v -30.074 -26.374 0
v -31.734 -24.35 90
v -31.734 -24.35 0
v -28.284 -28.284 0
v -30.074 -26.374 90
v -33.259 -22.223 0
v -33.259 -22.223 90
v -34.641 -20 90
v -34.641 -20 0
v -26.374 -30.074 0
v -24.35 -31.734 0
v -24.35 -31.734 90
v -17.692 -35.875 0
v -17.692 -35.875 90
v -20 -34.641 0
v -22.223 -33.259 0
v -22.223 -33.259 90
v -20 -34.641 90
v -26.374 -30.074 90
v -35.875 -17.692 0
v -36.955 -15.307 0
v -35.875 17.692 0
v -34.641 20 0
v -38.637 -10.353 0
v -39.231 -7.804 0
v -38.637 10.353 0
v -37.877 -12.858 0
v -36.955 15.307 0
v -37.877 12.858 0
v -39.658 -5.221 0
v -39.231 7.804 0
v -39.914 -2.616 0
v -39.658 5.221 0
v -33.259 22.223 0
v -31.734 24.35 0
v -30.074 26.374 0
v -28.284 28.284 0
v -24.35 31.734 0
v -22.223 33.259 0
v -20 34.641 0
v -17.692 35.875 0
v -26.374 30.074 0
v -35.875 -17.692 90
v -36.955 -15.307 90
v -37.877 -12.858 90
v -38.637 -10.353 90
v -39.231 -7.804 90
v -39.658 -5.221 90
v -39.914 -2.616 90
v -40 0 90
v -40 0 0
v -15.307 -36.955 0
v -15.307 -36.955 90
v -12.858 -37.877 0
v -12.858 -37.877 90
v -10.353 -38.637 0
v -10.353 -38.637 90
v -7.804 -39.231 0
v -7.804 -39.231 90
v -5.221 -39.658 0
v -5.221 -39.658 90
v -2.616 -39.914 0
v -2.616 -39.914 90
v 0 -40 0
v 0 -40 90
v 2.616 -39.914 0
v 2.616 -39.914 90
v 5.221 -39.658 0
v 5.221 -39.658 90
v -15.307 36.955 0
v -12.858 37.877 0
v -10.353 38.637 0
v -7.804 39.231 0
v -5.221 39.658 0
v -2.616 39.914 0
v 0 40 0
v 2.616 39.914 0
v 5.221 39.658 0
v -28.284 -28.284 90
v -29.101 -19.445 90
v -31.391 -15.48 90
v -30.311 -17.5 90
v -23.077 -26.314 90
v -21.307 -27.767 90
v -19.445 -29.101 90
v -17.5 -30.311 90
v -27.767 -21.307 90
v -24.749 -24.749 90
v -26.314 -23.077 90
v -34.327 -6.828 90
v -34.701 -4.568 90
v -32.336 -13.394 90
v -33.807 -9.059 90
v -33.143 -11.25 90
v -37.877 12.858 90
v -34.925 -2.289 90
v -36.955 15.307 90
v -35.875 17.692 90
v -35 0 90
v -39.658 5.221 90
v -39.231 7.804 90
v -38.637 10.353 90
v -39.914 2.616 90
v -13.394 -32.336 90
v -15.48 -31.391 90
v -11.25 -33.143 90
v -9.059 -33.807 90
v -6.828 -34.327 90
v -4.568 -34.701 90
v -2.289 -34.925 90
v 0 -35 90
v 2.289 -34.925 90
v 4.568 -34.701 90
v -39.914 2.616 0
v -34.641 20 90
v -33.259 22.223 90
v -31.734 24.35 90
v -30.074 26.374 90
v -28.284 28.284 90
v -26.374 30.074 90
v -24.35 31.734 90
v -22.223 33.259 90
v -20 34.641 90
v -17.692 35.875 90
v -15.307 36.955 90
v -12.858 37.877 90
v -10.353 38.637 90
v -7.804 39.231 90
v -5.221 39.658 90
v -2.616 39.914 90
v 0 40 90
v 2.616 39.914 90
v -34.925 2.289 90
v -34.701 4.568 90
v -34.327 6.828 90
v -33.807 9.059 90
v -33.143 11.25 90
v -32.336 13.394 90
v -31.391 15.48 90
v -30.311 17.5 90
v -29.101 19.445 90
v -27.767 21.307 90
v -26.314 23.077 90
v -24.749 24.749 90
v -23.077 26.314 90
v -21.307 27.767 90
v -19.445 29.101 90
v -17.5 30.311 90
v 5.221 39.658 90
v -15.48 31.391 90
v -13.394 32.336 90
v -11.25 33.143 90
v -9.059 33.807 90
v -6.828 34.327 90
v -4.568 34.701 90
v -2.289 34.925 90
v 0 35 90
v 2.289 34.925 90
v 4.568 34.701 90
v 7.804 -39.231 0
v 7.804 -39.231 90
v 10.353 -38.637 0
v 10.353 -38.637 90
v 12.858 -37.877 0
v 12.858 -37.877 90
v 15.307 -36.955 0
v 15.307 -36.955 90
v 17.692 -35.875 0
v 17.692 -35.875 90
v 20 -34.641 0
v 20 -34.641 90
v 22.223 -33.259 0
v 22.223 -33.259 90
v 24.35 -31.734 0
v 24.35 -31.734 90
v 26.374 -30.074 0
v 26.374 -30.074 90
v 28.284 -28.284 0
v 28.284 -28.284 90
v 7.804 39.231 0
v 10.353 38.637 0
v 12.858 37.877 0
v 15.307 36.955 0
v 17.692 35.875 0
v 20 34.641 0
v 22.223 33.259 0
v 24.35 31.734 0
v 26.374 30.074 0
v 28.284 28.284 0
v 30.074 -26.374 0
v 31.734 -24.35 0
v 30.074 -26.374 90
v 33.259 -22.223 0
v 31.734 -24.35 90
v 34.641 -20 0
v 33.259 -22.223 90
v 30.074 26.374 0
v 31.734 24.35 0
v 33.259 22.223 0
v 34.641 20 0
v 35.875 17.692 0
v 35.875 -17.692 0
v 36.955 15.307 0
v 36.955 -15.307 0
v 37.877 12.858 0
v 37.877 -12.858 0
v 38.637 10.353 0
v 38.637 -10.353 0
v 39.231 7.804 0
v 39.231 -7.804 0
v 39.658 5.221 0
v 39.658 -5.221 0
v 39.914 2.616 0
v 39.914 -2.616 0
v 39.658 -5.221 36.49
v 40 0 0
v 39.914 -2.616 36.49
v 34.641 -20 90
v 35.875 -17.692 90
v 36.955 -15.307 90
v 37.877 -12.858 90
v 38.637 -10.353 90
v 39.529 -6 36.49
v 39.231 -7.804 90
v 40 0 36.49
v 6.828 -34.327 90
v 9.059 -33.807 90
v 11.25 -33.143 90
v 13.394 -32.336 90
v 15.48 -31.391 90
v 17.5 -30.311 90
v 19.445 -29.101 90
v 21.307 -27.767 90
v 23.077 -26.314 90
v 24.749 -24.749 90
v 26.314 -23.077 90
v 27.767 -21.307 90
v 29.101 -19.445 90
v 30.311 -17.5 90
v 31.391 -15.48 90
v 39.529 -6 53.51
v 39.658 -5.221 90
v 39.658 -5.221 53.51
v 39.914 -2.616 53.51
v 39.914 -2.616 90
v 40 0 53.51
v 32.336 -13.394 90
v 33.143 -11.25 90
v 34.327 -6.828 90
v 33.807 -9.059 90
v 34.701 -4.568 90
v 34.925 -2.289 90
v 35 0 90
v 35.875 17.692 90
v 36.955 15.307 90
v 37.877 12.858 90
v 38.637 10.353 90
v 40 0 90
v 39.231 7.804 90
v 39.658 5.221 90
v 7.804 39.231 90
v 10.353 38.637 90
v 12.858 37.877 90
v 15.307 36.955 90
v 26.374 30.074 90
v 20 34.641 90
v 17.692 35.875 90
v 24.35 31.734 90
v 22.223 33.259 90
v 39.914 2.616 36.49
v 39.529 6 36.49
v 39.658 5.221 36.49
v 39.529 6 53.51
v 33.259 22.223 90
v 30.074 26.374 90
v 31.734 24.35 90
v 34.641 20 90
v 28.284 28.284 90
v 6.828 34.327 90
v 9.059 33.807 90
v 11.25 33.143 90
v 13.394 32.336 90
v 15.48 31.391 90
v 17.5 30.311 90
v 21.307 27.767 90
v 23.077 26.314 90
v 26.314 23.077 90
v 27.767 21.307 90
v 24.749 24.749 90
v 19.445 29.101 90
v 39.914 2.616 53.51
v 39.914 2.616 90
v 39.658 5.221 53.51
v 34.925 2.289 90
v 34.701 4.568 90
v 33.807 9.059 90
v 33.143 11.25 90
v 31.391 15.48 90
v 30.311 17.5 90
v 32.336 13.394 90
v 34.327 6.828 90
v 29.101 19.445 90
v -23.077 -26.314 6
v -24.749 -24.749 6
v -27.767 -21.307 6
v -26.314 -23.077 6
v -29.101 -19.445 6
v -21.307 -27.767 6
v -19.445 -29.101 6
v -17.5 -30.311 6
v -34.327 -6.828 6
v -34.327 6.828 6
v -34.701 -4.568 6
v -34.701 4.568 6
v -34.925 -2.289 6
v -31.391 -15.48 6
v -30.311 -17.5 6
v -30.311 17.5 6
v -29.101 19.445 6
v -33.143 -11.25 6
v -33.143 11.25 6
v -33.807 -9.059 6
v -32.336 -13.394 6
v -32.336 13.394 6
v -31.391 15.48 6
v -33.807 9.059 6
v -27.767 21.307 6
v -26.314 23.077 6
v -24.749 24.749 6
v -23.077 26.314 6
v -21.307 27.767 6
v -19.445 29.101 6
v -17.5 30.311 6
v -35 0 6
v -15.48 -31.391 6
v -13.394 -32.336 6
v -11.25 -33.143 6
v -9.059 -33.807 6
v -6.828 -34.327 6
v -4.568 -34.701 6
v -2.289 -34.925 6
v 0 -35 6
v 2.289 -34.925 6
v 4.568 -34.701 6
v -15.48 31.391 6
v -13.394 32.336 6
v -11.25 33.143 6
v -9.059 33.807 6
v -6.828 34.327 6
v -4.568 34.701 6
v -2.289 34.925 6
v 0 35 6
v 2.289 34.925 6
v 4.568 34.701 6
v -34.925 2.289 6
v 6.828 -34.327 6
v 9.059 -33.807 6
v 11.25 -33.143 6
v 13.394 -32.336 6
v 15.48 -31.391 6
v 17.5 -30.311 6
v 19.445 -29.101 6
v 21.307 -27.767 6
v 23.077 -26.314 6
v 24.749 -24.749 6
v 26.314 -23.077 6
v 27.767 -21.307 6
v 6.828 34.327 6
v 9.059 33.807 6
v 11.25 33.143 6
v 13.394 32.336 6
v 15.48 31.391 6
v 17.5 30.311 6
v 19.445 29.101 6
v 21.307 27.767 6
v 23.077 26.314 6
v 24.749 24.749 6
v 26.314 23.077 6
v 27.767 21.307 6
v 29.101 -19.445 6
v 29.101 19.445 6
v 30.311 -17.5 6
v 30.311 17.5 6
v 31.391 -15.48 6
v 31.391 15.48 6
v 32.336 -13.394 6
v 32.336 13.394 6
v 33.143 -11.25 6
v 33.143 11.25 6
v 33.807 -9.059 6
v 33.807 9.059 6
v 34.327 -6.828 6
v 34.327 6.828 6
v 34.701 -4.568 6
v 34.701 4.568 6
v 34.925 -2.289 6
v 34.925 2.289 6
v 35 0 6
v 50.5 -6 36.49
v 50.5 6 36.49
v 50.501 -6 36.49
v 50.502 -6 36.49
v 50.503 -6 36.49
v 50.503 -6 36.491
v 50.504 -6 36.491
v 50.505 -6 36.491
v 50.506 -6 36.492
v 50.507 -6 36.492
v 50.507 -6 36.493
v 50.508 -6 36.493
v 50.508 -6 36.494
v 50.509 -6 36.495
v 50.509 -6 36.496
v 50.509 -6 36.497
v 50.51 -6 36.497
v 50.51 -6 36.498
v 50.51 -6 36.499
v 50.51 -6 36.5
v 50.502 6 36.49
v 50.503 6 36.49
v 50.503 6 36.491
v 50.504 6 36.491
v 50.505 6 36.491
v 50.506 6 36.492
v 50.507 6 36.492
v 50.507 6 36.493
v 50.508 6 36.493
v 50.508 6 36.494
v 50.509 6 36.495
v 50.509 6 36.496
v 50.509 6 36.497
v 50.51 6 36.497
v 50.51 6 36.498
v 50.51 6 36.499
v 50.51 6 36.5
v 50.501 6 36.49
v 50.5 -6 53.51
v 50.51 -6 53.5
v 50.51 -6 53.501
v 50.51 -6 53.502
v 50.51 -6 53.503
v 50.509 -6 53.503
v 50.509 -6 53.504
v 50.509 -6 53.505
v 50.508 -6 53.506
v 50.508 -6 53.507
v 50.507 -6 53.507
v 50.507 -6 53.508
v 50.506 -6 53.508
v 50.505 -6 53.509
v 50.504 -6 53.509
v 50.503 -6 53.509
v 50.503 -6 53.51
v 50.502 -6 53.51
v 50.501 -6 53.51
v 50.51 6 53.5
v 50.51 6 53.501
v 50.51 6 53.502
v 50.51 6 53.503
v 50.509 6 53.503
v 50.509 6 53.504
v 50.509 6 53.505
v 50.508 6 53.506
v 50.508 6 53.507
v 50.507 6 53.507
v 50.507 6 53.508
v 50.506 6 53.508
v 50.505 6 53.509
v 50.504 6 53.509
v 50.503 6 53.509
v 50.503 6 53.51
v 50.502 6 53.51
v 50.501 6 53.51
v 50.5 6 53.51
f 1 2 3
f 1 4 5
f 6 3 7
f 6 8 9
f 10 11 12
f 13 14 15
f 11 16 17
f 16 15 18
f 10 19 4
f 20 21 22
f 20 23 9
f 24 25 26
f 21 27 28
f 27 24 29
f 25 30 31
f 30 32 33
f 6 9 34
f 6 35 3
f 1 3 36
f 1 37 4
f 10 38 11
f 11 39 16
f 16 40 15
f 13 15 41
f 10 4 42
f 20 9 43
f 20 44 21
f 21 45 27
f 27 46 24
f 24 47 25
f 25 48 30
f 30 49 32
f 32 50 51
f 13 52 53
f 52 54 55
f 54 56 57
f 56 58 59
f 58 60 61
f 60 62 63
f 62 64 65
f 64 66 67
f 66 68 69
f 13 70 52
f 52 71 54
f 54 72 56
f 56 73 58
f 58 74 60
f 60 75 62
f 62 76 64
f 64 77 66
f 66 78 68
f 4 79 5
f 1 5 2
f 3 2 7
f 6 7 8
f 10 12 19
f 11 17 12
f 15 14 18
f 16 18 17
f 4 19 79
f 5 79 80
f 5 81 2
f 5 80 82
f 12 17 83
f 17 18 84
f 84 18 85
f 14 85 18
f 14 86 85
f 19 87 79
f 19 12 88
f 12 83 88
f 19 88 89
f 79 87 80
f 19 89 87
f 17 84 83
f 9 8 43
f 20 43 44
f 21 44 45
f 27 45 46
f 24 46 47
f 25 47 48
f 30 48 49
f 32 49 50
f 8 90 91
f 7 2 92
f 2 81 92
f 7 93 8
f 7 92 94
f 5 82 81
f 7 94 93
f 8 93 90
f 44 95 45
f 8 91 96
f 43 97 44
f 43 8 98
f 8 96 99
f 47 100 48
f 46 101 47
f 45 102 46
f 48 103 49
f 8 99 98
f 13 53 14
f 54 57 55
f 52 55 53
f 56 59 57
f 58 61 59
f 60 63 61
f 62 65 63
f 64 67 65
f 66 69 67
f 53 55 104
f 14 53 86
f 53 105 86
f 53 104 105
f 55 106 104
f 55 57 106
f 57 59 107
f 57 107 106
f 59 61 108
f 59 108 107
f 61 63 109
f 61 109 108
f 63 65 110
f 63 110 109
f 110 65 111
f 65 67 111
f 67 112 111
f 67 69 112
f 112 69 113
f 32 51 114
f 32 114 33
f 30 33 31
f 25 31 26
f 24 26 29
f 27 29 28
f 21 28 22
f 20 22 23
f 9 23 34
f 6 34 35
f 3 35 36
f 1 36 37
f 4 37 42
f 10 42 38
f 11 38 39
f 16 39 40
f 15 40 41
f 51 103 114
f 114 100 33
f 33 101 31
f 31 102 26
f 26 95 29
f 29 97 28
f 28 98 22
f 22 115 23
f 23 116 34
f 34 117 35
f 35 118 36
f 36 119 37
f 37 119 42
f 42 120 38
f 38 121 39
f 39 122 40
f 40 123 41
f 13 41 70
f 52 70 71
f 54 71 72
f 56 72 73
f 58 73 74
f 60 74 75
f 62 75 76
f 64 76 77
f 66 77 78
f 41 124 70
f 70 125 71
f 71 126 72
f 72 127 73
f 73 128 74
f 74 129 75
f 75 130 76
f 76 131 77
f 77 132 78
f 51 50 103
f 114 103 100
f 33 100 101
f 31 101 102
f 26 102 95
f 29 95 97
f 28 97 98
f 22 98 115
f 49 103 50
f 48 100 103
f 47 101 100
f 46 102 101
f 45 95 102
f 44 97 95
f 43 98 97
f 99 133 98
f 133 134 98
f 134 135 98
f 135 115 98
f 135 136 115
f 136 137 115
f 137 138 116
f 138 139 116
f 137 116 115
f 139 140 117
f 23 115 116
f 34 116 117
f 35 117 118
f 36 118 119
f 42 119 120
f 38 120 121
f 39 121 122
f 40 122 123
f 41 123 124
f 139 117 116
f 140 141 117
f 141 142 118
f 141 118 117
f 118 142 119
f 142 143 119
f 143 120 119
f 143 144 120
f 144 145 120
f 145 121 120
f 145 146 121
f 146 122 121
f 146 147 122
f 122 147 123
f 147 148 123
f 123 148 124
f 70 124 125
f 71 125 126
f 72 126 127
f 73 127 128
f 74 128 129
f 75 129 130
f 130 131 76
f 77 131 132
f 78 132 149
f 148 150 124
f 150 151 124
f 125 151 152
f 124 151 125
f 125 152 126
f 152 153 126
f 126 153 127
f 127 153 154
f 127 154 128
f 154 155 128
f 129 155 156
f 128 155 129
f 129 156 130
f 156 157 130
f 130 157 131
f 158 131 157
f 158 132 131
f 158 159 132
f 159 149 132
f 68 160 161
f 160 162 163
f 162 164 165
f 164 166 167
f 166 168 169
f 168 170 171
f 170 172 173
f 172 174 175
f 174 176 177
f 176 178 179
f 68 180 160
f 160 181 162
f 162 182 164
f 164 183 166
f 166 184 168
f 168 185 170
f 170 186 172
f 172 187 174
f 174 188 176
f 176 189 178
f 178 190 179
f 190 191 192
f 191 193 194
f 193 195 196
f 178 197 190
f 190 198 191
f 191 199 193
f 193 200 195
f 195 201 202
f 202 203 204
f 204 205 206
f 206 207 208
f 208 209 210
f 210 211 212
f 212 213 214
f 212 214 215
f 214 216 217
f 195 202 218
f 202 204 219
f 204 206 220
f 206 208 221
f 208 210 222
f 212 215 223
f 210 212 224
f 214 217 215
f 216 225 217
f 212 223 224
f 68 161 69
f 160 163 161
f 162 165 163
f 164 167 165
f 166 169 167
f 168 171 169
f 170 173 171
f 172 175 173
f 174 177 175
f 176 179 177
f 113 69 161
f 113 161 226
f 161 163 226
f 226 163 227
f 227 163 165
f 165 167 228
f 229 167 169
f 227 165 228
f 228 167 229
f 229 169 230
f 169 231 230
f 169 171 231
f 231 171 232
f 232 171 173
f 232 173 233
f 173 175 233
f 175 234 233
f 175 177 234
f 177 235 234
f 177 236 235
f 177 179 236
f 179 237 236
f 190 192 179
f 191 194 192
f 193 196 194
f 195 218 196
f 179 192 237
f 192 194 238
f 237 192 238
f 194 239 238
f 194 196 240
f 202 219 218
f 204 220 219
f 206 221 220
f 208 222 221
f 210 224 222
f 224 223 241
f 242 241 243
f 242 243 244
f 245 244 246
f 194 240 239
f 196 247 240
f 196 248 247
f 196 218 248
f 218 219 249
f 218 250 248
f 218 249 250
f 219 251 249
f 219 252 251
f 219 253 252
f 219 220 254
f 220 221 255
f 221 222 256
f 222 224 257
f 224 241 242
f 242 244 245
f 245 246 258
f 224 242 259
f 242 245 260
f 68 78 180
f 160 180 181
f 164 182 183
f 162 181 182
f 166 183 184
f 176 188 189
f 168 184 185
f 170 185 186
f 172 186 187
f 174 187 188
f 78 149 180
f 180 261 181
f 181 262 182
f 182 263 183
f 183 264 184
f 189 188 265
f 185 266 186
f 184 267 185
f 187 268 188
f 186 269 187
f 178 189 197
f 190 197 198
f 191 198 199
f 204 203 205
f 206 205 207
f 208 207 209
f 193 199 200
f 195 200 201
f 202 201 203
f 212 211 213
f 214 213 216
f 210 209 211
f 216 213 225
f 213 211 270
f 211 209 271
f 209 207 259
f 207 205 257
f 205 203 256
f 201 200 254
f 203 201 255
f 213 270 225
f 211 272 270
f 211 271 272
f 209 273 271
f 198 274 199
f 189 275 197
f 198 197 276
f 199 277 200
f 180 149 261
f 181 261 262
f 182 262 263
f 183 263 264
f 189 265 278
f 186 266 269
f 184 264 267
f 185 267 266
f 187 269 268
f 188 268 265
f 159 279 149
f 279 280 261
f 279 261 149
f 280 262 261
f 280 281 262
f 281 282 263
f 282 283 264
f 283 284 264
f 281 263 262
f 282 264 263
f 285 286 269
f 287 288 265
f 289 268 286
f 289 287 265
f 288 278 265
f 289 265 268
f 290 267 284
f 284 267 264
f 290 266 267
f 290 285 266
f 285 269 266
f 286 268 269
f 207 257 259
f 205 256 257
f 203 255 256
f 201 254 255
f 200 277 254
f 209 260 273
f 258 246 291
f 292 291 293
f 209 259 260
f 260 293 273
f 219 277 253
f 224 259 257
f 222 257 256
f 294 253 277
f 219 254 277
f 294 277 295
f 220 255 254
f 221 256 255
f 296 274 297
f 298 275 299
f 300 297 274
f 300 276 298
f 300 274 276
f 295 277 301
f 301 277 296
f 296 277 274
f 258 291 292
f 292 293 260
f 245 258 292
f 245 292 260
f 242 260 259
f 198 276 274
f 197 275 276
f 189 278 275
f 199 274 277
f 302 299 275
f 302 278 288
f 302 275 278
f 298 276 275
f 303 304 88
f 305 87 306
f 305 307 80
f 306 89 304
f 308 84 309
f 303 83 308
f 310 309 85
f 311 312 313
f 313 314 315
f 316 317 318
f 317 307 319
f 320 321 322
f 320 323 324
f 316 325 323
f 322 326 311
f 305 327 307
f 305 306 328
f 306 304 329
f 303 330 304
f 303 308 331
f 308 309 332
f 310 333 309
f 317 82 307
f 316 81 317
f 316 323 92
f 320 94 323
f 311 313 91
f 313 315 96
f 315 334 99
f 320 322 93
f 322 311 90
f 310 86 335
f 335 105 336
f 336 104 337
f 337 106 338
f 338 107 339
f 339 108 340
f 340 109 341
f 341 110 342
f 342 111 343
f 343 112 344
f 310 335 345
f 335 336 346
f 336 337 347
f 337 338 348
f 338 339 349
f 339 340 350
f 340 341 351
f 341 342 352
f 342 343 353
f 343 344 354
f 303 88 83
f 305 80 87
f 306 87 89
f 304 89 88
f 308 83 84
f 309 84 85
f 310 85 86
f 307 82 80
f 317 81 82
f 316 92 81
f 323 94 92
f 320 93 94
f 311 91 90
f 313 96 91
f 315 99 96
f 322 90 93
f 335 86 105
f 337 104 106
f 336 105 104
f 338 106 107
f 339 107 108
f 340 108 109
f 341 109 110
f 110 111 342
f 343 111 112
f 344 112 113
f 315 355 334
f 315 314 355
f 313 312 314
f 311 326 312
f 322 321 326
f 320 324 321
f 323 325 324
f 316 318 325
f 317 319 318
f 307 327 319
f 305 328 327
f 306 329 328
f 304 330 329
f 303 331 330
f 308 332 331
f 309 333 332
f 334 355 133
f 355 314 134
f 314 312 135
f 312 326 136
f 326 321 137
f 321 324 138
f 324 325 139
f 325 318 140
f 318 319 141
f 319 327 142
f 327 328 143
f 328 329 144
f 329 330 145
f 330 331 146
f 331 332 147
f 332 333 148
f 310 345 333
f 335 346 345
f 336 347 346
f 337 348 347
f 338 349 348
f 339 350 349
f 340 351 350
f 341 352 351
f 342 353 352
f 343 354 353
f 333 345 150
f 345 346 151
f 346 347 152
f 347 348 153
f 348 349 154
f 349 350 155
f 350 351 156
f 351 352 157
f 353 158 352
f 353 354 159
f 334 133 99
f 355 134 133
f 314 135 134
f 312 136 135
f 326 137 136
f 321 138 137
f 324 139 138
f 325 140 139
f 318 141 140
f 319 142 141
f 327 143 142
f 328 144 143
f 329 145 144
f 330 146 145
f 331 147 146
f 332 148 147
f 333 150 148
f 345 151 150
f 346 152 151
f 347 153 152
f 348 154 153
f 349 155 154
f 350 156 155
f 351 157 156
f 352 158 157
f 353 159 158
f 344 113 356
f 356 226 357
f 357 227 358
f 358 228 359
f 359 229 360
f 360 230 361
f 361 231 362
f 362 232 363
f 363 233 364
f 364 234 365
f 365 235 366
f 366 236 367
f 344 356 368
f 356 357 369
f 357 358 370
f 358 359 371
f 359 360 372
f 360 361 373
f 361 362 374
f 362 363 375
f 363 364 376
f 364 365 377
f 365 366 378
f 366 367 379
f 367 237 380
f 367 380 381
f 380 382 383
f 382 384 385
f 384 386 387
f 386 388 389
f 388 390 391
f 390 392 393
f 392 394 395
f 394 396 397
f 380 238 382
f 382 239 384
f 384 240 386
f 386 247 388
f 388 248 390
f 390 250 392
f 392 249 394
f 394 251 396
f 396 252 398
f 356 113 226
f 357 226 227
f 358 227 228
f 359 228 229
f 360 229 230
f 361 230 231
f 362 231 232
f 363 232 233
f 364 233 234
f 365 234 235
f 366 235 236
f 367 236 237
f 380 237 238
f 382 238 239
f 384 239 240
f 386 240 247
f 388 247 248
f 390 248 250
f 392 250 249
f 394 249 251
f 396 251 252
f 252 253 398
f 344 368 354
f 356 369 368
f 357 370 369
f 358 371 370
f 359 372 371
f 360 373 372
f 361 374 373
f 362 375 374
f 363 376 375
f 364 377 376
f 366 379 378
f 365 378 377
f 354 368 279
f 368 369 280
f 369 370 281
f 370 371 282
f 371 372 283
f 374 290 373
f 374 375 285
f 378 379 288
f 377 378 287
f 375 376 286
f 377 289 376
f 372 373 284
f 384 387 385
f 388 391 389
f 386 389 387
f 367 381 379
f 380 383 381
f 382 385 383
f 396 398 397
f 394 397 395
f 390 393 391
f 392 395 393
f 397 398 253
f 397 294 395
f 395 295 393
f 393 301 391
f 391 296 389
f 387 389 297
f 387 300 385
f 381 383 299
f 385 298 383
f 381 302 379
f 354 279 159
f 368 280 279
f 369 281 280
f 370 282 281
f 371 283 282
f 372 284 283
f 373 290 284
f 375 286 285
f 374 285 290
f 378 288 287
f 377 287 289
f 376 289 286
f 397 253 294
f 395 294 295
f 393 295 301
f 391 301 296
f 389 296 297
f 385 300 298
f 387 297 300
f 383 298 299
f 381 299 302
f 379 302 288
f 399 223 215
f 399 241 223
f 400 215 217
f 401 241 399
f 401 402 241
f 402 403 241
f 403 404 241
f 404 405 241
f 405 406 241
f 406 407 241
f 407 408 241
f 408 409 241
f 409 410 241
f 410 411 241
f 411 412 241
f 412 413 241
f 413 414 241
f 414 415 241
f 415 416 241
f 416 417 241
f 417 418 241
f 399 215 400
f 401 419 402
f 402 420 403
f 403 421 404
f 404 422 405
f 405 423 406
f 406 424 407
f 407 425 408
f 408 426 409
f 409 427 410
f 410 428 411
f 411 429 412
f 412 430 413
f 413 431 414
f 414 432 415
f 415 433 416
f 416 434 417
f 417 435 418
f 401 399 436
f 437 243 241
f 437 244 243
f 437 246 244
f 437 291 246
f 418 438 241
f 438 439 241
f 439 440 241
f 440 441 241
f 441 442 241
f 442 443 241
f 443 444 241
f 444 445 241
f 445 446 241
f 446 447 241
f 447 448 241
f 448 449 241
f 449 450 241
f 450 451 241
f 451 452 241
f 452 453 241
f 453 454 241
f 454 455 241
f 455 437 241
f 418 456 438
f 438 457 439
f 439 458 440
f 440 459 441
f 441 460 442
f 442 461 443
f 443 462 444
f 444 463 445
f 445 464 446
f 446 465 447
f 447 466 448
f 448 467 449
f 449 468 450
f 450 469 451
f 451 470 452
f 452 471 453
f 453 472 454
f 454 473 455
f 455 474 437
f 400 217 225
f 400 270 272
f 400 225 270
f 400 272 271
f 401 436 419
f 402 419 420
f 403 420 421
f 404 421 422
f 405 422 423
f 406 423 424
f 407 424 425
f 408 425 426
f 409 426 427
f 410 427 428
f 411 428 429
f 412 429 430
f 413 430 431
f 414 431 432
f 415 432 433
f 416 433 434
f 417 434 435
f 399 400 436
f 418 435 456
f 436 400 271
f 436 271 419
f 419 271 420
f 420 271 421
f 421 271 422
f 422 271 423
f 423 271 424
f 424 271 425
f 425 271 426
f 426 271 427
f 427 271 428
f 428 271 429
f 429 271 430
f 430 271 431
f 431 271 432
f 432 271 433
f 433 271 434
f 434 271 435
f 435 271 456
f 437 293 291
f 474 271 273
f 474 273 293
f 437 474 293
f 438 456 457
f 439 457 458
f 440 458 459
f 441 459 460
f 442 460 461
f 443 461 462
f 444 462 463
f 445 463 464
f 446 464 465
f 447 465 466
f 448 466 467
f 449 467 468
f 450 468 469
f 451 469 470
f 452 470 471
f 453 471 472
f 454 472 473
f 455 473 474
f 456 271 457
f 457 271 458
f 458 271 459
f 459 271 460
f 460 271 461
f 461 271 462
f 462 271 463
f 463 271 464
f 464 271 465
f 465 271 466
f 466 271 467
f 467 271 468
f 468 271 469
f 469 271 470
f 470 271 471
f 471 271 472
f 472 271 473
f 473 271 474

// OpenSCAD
$fn = 96;

// ===== パラメータ =====
mug_outer_d   = 80;   // 本体外径
mug_inner_d   = 70;   // 本体内径 (肉厚5mm)
mug_height    = 90;   // 本体高さ
bottom_thick  = 6;    // 底の厚み

handle_grip_d = 12;   // 取手の太さ(断面の直径)
handle_open_h = 30;   // 取手内側の空間の高さ
handle_open_w = 25;   // 取手内側の空間の幅(本体外周からの張り出し方向)
handle_z      = mug_height / 2;  // 取手を付ける高さ(中央)

mug_outer_r = mug_outer_d / 2;
mug_inner_r = mug_inner_d / 2;

// ===== 本体 =====
module mug_body() {
    difference() {
        // 外形
        cylinder(h = mug_height, r = mug_outer_r);
        // 内側のくぼみ(中空)
        translate([0, 0, bottom_thick])
            cylinder(h = mug_height, r = mug_inner_r);
    }
}

// ===== 取手 (+X 側のみ, D字形状) =====
// D字の中心線(パス)に沿って円形断面をスイープする
module handle() {
    // 取手中心線が描く D 字輪郭の寸法
    // 内側の空間: 高さ handle_open_h, 幅 handle_open_w
    path_h = handle_open_h + handle_grip_d; // 中心線の高さ方向スパン
    path_w = handle_open_w;                 // 中心線の張り出し幅

    // 取手の付け根 X 位置(本体外周に少し食い込ませて確実に union)
    base_x = mug_outer_r - 2;

    translate([base_x, 0, handle_z])
    rotate([90, 0, 0])  // 取手の平面を XZ→作図しやすい向きへ
    linear_extrude(height = handle_grip_d, center = true)
        difference() {
            d_shape(path_w, path_h);
            offset(r = -handle_grip_d)
                d_shape(path_w, path_h);
        }
}

// D字の外形(2D): 左側が直線(本体側)、右側が半円
module d_shape(w, h) {
    hull() {
        // 直線側(本体に接する辺):上下2点
        translate([0,  h/2 - w/2]) circle(r = 0.01);
        translate([0, -h/2 + w/2]) circle(r = 0.01);
        // 半円側
        translate([0,  h/2 - w/2]) translate([w - w/2,0]) circle(r = 0.01);
        translate([0, -h/2 + w/2]) translate([w - w/2,0]) circle(r = 0.01);
    }
    // 上記hullだと角丸の矩形になるため、よりD字に近い形を別途構成
}

// ===== 組み立て =====
union() {
    mug_body();
    handle();
}
